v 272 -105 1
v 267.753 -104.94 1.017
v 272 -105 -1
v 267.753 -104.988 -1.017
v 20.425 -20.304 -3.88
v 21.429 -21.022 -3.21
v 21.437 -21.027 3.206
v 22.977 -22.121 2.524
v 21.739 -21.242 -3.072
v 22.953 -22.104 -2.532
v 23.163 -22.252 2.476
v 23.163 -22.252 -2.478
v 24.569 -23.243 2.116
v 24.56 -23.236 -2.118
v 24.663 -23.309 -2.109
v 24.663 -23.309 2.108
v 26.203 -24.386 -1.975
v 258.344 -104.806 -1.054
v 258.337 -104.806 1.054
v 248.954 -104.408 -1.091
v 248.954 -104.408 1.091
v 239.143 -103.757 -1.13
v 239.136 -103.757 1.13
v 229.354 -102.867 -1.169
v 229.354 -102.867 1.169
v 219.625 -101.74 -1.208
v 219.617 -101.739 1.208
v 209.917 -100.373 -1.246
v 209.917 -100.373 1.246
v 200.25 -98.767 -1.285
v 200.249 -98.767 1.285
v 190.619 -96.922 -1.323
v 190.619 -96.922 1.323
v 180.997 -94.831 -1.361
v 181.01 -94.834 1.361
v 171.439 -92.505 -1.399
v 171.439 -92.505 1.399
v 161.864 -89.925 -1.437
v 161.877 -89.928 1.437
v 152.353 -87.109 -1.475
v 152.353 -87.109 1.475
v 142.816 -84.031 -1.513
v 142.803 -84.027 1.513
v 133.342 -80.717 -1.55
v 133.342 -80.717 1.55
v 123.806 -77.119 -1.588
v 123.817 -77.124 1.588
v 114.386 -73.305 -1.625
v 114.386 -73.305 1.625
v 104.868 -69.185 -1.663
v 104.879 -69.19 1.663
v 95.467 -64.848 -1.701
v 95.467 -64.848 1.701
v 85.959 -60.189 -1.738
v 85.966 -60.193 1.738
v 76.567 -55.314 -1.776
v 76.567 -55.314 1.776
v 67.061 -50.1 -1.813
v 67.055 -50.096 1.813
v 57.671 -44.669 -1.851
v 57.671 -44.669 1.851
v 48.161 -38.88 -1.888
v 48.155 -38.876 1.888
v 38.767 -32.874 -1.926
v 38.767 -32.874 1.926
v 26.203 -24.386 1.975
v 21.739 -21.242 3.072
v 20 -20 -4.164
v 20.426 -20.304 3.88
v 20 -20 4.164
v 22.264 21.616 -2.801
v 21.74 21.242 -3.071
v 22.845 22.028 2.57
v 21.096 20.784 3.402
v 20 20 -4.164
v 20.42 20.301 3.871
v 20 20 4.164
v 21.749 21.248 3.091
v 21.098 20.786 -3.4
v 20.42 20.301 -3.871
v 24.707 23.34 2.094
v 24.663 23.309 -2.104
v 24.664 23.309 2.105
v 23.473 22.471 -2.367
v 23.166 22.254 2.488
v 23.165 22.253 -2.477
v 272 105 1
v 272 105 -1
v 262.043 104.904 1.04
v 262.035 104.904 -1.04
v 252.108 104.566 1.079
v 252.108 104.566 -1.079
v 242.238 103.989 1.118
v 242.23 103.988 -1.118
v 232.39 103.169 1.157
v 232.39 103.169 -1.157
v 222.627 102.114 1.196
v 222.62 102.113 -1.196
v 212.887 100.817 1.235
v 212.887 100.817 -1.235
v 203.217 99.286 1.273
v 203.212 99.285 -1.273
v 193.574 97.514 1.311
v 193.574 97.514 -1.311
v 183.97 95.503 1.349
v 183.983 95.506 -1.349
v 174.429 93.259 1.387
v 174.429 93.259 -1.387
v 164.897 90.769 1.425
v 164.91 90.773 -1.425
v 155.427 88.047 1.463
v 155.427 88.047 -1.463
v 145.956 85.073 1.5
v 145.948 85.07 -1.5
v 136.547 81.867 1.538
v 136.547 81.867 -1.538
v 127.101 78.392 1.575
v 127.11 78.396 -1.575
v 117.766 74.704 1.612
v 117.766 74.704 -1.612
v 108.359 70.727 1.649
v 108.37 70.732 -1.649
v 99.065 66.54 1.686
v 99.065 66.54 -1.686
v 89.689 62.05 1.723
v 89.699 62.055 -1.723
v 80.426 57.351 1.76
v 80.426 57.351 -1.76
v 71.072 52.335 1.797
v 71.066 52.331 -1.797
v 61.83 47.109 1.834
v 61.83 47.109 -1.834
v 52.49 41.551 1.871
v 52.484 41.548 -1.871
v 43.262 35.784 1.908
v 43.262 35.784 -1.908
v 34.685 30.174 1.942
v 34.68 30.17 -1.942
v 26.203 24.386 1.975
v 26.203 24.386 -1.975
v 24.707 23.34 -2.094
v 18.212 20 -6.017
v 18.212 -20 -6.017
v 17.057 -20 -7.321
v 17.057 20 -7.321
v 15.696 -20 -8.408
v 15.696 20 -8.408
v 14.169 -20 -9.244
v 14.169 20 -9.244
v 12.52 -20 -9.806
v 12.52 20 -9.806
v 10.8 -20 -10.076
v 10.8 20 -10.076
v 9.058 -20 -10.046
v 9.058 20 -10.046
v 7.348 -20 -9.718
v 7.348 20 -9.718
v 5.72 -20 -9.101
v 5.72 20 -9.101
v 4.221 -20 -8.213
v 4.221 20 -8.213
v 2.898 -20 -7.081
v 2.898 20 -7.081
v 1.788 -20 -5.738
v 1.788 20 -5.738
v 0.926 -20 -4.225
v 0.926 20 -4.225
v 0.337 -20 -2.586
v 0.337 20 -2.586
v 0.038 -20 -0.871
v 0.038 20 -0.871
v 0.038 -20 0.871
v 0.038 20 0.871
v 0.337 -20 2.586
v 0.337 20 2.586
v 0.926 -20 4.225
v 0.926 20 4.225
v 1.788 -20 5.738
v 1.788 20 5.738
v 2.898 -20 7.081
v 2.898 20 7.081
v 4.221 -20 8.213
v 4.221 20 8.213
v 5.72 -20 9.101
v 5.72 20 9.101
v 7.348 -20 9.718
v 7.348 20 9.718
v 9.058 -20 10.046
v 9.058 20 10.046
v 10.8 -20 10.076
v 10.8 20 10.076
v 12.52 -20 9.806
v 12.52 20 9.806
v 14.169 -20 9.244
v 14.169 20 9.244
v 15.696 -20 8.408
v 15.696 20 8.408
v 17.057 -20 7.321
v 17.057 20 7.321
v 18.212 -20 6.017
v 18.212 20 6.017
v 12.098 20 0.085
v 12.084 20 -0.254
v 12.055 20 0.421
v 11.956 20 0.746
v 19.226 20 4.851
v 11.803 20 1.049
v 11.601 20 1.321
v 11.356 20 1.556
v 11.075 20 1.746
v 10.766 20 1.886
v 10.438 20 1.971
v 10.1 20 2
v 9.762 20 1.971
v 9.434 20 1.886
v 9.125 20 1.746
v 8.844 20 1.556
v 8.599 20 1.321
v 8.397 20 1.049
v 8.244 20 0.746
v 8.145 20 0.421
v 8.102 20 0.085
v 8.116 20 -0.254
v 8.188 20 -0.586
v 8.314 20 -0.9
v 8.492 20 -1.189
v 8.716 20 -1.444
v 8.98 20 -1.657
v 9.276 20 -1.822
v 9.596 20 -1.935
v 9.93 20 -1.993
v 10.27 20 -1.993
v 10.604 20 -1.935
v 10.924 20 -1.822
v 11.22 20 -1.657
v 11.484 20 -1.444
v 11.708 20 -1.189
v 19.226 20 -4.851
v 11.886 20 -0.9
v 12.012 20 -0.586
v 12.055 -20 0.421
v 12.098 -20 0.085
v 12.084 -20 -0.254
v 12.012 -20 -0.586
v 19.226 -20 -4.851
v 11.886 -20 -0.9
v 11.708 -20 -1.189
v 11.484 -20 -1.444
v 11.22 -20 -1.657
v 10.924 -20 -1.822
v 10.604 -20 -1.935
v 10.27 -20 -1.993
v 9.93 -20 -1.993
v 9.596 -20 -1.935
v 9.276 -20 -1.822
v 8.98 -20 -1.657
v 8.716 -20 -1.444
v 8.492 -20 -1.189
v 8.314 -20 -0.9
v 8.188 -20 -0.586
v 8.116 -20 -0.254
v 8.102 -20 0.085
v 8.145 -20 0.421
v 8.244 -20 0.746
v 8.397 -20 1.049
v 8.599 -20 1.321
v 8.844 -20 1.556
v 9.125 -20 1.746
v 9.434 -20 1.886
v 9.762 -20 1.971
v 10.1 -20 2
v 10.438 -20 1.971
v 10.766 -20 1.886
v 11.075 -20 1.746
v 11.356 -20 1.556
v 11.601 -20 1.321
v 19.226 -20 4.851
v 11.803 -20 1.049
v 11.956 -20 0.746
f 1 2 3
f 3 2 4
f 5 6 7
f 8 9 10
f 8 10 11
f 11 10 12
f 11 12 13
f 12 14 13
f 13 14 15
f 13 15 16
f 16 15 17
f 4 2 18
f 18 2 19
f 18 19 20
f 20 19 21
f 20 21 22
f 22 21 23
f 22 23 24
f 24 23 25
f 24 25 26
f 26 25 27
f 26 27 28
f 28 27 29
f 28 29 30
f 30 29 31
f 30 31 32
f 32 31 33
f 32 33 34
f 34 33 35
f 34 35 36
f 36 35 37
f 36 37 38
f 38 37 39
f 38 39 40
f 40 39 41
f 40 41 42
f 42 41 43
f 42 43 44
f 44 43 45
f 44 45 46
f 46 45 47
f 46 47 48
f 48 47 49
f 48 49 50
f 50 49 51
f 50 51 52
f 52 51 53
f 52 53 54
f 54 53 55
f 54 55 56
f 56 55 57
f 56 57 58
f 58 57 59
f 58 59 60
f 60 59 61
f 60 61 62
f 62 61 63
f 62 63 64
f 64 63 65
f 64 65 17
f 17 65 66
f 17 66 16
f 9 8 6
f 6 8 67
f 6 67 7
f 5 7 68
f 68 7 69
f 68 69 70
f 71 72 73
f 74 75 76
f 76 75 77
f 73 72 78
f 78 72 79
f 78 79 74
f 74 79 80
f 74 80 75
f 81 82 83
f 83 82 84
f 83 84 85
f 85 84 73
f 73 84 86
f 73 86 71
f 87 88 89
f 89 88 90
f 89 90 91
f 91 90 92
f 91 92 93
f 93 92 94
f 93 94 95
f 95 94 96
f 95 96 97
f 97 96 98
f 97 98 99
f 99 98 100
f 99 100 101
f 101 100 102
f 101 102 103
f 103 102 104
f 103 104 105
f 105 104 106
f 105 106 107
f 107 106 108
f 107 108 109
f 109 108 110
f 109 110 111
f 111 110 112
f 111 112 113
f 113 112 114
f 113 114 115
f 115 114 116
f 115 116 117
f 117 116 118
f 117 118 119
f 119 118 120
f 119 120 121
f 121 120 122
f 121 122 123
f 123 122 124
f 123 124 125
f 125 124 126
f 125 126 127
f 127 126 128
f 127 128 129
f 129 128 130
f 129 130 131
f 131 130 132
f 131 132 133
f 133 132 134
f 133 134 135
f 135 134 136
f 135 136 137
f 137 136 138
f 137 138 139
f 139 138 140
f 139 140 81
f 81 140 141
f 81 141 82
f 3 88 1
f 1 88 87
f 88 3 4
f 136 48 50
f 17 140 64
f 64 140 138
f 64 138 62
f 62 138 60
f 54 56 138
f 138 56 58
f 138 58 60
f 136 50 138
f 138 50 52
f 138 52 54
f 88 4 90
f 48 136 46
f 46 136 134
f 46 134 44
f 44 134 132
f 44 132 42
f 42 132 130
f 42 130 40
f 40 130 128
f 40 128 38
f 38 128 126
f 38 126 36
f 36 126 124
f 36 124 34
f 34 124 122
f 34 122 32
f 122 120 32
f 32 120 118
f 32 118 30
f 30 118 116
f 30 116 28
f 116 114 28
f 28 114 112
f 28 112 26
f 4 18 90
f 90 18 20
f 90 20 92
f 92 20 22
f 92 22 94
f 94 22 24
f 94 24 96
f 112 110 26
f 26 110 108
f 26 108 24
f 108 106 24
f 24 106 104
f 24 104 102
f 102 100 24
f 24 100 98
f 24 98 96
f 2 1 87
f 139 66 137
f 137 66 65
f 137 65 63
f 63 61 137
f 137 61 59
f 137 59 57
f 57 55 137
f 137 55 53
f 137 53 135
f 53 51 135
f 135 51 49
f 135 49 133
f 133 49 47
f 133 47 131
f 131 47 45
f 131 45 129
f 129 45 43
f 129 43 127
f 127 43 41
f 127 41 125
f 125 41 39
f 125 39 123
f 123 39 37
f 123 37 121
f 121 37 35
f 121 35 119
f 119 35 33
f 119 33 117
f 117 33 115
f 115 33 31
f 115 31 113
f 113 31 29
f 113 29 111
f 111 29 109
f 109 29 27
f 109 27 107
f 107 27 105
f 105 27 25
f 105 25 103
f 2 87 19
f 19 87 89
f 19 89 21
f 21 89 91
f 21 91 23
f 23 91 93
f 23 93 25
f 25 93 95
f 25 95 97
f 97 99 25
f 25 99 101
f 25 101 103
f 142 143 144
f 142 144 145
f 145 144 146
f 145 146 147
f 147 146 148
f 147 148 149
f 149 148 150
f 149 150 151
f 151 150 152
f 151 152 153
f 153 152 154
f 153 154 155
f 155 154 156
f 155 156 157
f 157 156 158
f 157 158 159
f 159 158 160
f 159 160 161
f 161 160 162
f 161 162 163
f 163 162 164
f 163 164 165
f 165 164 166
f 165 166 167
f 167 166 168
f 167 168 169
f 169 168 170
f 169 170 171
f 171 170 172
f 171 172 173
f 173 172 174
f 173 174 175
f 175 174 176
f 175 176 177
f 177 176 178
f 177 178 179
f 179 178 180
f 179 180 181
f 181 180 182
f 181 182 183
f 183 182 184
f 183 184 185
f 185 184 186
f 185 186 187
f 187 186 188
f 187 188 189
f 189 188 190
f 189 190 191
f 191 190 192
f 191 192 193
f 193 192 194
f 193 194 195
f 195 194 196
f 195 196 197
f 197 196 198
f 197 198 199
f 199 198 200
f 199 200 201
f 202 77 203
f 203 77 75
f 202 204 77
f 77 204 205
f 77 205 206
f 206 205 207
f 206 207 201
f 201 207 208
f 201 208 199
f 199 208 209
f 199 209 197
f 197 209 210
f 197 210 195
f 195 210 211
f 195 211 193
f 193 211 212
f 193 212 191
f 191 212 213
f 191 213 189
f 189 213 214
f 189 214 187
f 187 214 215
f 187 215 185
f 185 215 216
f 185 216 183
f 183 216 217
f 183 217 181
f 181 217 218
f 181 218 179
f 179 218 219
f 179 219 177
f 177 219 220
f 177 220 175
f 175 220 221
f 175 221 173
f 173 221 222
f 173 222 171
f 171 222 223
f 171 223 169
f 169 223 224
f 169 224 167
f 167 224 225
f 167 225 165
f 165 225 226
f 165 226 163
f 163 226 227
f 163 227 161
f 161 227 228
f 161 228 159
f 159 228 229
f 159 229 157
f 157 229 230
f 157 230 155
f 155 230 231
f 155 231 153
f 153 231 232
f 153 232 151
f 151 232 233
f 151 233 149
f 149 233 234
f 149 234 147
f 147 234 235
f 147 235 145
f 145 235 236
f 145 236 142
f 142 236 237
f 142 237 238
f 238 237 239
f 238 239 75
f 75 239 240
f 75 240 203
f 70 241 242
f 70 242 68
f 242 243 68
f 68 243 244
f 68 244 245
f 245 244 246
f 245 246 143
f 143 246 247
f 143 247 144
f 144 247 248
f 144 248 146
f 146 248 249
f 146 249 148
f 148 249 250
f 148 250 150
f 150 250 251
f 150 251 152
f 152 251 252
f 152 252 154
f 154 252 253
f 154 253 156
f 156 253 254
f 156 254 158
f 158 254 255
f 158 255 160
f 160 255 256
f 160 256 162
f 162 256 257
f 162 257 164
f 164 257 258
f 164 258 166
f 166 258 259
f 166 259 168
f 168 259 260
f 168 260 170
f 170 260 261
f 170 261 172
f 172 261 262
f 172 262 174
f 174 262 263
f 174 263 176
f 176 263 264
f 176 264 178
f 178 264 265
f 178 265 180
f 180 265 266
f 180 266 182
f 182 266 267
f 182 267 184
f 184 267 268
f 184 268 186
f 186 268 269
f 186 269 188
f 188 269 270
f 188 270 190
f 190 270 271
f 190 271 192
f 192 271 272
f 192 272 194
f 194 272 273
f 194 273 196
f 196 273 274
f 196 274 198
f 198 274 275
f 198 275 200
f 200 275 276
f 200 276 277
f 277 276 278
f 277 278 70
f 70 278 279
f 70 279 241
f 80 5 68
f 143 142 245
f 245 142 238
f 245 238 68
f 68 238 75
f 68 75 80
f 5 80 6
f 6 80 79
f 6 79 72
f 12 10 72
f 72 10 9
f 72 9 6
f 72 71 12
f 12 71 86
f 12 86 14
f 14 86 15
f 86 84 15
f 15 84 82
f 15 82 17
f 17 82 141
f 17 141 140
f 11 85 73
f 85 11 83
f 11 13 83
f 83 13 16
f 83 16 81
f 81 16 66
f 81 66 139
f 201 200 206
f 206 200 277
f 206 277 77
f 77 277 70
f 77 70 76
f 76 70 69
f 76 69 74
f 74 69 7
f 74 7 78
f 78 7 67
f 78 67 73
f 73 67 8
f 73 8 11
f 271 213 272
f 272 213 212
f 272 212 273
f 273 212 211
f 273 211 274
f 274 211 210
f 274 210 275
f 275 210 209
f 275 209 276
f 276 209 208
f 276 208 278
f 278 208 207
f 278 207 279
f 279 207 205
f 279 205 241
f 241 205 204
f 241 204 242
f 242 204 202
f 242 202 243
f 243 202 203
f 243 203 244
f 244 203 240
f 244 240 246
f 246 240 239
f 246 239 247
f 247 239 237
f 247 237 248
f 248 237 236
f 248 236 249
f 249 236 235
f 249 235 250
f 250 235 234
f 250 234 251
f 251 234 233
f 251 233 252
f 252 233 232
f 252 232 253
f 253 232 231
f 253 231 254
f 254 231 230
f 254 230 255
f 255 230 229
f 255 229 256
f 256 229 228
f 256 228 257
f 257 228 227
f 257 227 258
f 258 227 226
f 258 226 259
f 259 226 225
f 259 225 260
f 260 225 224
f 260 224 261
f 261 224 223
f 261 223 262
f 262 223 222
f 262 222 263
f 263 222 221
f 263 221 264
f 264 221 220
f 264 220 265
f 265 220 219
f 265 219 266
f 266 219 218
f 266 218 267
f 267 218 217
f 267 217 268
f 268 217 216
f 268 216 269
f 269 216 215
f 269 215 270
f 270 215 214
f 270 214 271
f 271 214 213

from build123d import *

# Parameters (mm, degrees)
EXTRUDE_1_DEPTH          = 2
EXTRUDE_1_DEPTH_BACK     = 2
CUT_EXTRUDE_1_DEPTH      = 106.001210011
CUT_EXTRUDE_1_DEPTH_BACK = 106.001210011
EXTRUDE_2_DEPTH          = 20
EXTRUDE_2_DEPTH_BACK     = 20
FILLET_1_R               = 10
SKETCH_5_R               = 2
CUT_EXTRUDE_2_DEPTH      = 40


with BuildPart() as part:
    # Эскиз1 → Бобышка-Вытянуть1 (new body, two sides)
    with BuildSketch(Plane.XY) as extrude_1_sk:
        with BuildLine():
            Line((272, -105), (272, 105))
            add(Edge.make_bspline(
                [(20, 20), (138.91931348, 105.321902733), (272, 105)],
                knots=[0, 0, 0, 1, 1, 1], degree=2))
            Line((20, 20), (20, -20))
            add(Edge.make_bspline(
                [(20, -20), (138.91931348, -105.321902733), (272, -105)],
                knots=[0, 0, 0, 1, 1, 1], degree=2))
        make_face()
    extrude(amount=EXTRUDE_1_DEPTH)
    extrude(extrude_1_sk.sketch, amount=-EXTRUDE_1_DEPTH_BACK)

    # Эскиз2 → Вырез-Вытянуть1 (cut, two sides)
    with BuildSketch(Plane(origin=(0, 0, 0), x_dir=(1, 0, 0), z_dir=(0, 1, 0))) as cut_extrude_1_sk:
        Polygon((20, -2), (272, -1), (272, -2), align=None)
        Polygon((272, 1), (20, 2), (272, 2), align=None)
    extrude(amount=CUT_EXTRUDE_1_DEPTH, mode=Mode.SUBTRACT)
    extrude(cut_extrude_1_sk.sketch, amount=-CUT_EXTRUDE_1_DEPTH_BACK, mode=Mode.SUBTRACT)

    # Эскиз4 → Бобышка-Вытянуть2 (add, two sides)
    with BuildSketch(Plane(origin=(0, 0, 0), x_dir=(1, 0, 0), z_dir=(0, 1, 0))) as extrude_2_sk:
        with BuildLine():
            Line((20, 2), (20, -2))
            ThreePointArc((20, -2), (0, 0), (20, 2))
        make_face()
    extrude(amount=EXTRUDE_2_DEPTH)
    extrude(extrude_2_sk.sketch, amount=-EXTRUDE_2_DEPTH_BACK)

    # Скругление1
    fillet_1_edges = [part.edges().sort_by_distance(p)[0] for p in [
        (20, 0, -2),
        (20, 0, 2),
    ]]
    fillet(fillet_1_edges, radius=FILLET_1_R)

    # Эскиз5 → Вырез-Вытянуть2 (cut)
    with BuildSketch(Plane(origin=(0, 20, 0), x_dir=(1, 0, 0), z_dir=(0, 1, 0))):
        with Locations((10.1, 0)):
            Circle(SKETCH_5_R)
    extrude(amount=-CUT_EXTRUDE_2_DEPTH, mode=Mode.SUBTRACT)


solid = part.part
